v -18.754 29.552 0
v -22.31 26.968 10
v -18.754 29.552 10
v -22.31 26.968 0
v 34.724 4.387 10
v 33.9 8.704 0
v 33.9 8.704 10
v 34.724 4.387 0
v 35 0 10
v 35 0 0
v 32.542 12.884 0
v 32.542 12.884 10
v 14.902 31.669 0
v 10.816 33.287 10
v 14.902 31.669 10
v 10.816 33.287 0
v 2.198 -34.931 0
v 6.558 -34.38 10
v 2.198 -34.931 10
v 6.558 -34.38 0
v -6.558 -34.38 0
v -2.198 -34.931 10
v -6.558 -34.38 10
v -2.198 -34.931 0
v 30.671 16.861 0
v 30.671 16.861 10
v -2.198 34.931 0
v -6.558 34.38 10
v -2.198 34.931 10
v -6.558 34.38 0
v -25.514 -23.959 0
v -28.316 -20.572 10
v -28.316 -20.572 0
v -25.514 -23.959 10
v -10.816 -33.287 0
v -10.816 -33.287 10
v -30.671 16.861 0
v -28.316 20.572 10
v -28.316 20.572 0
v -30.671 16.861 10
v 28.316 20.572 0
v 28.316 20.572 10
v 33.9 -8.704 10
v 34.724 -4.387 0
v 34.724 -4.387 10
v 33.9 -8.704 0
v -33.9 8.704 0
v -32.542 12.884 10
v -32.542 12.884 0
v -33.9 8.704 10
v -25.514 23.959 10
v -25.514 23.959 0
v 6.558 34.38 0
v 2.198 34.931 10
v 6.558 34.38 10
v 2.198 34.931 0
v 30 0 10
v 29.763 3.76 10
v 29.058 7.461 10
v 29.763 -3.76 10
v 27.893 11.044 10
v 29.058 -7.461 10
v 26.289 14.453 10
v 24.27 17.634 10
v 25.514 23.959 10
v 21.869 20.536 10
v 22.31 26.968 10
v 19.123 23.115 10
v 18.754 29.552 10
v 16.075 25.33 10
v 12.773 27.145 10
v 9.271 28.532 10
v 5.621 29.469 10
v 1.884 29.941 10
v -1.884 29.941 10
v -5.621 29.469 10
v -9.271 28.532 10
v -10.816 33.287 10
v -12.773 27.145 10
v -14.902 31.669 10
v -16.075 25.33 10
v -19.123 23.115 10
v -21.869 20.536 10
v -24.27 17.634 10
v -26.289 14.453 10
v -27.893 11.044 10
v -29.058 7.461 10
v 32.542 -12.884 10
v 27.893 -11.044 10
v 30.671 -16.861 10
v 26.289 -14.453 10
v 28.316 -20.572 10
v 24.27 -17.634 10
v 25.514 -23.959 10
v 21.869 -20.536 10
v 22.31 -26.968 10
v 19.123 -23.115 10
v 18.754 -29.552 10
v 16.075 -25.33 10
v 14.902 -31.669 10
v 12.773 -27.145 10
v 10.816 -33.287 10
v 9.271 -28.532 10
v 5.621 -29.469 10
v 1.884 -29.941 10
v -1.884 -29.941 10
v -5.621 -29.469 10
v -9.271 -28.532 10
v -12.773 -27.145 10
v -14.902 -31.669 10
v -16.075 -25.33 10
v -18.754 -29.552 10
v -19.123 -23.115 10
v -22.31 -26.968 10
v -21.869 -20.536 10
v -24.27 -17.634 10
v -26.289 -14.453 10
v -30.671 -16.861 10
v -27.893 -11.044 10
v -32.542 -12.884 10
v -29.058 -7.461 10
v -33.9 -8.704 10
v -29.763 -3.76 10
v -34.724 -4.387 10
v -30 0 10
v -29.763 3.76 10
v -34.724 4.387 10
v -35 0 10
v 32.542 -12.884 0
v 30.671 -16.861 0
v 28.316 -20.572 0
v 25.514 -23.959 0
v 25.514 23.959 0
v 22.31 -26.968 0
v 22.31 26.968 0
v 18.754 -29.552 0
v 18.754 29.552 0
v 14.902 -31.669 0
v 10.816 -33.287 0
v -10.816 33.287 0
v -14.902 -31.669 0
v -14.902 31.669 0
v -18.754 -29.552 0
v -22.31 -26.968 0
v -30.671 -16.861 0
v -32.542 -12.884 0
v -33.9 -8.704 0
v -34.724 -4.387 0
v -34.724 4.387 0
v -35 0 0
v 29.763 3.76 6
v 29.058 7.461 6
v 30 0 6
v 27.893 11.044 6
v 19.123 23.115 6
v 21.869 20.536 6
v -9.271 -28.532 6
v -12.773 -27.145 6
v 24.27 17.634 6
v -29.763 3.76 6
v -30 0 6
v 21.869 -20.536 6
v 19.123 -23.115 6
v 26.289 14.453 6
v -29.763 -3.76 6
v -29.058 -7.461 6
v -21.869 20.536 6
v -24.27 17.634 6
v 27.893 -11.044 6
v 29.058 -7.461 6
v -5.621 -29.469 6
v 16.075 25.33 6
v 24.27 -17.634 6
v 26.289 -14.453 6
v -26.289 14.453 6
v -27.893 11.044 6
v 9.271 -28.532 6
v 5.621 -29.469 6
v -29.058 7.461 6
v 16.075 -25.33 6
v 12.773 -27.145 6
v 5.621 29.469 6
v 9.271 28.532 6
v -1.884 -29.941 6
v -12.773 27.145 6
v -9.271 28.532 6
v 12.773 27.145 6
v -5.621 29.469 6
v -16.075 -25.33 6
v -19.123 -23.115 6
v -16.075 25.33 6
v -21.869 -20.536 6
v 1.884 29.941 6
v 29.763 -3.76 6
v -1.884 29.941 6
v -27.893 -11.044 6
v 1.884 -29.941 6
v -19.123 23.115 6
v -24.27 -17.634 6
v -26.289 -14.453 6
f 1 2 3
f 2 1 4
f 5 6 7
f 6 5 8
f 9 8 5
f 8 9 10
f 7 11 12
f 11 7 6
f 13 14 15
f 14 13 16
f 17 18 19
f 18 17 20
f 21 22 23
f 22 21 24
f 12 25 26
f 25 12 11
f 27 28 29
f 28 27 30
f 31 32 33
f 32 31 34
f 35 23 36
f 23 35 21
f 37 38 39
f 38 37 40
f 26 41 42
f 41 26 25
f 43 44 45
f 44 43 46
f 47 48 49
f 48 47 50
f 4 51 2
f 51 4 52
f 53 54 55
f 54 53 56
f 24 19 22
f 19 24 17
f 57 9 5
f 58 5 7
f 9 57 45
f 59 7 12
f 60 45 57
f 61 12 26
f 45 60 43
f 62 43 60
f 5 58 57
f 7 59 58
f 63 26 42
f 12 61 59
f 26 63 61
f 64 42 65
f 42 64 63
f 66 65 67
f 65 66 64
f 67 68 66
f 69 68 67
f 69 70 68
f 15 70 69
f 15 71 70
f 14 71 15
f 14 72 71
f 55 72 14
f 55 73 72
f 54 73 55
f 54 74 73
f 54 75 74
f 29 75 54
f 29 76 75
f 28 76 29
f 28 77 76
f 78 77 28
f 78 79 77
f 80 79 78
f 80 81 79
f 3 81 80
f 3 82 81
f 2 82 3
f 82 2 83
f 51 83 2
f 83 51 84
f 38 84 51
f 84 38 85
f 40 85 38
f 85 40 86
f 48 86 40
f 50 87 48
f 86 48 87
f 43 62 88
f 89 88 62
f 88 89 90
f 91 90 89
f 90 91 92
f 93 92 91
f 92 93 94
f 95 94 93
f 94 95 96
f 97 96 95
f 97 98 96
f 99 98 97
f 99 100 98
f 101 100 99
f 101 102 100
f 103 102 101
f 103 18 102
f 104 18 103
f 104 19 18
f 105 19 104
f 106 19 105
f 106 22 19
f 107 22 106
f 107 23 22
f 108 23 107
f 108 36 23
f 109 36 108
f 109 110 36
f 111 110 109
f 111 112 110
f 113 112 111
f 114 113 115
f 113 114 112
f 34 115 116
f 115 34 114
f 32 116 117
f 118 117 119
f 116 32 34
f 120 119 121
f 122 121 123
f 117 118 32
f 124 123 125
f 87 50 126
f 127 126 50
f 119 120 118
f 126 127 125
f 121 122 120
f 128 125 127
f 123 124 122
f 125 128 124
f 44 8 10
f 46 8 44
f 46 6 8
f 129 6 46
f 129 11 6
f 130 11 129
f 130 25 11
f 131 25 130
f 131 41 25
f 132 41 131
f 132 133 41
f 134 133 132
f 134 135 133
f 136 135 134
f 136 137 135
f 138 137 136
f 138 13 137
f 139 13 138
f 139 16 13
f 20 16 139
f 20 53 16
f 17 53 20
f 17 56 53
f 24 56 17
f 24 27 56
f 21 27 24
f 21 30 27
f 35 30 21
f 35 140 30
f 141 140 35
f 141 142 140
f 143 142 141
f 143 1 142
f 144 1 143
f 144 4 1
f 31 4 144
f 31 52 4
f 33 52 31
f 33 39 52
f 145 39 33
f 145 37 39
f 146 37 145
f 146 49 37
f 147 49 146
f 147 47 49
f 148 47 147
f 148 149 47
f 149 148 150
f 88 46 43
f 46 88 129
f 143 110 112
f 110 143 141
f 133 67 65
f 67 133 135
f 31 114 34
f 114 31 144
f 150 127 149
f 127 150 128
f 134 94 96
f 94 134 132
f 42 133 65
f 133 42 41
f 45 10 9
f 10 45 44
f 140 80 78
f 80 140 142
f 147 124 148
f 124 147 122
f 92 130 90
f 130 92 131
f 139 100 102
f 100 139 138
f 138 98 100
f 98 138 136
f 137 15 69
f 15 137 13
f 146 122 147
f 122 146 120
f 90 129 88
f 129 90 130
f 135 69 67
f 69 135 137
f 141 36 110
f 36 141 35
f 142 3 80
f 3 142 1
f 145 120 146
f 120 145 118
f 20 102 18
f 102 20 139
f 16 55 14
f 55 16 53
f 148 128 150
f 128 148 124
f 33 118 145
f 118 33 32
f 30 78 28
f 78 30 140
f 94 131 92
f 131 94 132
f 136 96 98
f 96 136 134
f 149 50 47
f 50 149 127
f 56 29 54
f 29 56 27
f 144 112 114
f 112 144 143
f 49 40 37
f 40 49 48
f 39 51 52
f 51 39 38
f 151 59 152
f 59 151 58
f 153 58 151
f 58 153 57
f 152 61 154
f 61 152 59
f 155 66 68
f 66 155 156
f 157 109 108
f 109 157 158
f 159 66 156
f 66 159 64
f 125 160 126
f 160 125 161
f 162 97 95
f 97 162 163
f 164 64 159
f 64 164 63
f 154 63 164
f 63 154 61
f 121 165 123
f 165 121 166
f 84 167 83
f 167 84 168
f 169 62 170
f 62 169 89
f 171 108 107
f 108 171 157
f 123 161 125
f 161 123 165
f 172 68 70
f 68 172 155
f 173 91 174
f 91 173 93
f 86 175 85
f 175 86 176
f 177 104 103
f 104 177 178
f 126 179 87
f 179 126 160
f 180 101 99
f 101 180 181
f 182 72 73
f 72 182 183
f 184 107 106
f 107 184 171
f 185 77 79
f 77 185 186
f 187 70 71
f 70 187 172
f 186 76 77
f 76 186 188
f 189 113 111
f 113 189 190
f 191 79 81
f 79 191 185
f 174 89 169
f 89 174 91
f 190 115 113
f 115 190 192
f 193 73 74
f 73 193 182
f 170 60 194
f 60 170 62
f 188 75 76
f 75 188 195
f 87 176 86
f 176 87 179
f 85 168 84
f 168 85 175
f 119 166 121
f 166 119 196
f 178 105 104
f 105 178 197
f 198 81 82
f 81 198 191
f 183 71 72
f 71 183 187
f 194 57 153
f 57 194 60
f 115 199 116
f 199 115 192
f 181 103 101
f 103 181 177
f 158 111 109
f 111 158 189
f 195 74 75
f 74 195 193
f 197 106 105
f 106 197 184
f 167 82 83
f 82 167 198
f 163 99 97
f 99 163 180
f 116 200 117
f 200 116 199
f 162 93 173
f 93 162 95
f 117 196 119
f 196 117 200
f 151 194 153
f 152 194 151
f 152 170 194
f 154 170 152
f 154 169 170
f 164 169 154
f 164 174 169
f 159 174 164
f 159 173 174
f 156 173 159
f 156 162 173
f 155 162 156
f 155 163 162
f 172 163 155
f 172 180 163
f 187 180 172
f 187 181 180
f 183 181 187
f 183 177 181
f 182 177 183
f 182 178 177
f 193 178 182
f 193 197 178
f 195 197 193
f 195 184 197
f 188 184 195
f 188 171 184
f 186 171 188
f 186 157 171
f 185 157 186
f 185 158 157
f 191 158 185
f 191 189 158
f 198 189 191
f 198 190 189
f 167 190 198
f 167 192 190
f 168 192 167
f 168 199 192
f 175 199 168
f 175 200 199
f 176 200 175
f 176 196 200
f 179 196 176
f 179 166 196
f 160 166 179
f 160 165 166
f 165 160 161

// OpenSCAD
$fn=50;
difference() {
  cylinder(10,d=70);
  translate([0,0,6]) cylinder(10,d=60);
}
